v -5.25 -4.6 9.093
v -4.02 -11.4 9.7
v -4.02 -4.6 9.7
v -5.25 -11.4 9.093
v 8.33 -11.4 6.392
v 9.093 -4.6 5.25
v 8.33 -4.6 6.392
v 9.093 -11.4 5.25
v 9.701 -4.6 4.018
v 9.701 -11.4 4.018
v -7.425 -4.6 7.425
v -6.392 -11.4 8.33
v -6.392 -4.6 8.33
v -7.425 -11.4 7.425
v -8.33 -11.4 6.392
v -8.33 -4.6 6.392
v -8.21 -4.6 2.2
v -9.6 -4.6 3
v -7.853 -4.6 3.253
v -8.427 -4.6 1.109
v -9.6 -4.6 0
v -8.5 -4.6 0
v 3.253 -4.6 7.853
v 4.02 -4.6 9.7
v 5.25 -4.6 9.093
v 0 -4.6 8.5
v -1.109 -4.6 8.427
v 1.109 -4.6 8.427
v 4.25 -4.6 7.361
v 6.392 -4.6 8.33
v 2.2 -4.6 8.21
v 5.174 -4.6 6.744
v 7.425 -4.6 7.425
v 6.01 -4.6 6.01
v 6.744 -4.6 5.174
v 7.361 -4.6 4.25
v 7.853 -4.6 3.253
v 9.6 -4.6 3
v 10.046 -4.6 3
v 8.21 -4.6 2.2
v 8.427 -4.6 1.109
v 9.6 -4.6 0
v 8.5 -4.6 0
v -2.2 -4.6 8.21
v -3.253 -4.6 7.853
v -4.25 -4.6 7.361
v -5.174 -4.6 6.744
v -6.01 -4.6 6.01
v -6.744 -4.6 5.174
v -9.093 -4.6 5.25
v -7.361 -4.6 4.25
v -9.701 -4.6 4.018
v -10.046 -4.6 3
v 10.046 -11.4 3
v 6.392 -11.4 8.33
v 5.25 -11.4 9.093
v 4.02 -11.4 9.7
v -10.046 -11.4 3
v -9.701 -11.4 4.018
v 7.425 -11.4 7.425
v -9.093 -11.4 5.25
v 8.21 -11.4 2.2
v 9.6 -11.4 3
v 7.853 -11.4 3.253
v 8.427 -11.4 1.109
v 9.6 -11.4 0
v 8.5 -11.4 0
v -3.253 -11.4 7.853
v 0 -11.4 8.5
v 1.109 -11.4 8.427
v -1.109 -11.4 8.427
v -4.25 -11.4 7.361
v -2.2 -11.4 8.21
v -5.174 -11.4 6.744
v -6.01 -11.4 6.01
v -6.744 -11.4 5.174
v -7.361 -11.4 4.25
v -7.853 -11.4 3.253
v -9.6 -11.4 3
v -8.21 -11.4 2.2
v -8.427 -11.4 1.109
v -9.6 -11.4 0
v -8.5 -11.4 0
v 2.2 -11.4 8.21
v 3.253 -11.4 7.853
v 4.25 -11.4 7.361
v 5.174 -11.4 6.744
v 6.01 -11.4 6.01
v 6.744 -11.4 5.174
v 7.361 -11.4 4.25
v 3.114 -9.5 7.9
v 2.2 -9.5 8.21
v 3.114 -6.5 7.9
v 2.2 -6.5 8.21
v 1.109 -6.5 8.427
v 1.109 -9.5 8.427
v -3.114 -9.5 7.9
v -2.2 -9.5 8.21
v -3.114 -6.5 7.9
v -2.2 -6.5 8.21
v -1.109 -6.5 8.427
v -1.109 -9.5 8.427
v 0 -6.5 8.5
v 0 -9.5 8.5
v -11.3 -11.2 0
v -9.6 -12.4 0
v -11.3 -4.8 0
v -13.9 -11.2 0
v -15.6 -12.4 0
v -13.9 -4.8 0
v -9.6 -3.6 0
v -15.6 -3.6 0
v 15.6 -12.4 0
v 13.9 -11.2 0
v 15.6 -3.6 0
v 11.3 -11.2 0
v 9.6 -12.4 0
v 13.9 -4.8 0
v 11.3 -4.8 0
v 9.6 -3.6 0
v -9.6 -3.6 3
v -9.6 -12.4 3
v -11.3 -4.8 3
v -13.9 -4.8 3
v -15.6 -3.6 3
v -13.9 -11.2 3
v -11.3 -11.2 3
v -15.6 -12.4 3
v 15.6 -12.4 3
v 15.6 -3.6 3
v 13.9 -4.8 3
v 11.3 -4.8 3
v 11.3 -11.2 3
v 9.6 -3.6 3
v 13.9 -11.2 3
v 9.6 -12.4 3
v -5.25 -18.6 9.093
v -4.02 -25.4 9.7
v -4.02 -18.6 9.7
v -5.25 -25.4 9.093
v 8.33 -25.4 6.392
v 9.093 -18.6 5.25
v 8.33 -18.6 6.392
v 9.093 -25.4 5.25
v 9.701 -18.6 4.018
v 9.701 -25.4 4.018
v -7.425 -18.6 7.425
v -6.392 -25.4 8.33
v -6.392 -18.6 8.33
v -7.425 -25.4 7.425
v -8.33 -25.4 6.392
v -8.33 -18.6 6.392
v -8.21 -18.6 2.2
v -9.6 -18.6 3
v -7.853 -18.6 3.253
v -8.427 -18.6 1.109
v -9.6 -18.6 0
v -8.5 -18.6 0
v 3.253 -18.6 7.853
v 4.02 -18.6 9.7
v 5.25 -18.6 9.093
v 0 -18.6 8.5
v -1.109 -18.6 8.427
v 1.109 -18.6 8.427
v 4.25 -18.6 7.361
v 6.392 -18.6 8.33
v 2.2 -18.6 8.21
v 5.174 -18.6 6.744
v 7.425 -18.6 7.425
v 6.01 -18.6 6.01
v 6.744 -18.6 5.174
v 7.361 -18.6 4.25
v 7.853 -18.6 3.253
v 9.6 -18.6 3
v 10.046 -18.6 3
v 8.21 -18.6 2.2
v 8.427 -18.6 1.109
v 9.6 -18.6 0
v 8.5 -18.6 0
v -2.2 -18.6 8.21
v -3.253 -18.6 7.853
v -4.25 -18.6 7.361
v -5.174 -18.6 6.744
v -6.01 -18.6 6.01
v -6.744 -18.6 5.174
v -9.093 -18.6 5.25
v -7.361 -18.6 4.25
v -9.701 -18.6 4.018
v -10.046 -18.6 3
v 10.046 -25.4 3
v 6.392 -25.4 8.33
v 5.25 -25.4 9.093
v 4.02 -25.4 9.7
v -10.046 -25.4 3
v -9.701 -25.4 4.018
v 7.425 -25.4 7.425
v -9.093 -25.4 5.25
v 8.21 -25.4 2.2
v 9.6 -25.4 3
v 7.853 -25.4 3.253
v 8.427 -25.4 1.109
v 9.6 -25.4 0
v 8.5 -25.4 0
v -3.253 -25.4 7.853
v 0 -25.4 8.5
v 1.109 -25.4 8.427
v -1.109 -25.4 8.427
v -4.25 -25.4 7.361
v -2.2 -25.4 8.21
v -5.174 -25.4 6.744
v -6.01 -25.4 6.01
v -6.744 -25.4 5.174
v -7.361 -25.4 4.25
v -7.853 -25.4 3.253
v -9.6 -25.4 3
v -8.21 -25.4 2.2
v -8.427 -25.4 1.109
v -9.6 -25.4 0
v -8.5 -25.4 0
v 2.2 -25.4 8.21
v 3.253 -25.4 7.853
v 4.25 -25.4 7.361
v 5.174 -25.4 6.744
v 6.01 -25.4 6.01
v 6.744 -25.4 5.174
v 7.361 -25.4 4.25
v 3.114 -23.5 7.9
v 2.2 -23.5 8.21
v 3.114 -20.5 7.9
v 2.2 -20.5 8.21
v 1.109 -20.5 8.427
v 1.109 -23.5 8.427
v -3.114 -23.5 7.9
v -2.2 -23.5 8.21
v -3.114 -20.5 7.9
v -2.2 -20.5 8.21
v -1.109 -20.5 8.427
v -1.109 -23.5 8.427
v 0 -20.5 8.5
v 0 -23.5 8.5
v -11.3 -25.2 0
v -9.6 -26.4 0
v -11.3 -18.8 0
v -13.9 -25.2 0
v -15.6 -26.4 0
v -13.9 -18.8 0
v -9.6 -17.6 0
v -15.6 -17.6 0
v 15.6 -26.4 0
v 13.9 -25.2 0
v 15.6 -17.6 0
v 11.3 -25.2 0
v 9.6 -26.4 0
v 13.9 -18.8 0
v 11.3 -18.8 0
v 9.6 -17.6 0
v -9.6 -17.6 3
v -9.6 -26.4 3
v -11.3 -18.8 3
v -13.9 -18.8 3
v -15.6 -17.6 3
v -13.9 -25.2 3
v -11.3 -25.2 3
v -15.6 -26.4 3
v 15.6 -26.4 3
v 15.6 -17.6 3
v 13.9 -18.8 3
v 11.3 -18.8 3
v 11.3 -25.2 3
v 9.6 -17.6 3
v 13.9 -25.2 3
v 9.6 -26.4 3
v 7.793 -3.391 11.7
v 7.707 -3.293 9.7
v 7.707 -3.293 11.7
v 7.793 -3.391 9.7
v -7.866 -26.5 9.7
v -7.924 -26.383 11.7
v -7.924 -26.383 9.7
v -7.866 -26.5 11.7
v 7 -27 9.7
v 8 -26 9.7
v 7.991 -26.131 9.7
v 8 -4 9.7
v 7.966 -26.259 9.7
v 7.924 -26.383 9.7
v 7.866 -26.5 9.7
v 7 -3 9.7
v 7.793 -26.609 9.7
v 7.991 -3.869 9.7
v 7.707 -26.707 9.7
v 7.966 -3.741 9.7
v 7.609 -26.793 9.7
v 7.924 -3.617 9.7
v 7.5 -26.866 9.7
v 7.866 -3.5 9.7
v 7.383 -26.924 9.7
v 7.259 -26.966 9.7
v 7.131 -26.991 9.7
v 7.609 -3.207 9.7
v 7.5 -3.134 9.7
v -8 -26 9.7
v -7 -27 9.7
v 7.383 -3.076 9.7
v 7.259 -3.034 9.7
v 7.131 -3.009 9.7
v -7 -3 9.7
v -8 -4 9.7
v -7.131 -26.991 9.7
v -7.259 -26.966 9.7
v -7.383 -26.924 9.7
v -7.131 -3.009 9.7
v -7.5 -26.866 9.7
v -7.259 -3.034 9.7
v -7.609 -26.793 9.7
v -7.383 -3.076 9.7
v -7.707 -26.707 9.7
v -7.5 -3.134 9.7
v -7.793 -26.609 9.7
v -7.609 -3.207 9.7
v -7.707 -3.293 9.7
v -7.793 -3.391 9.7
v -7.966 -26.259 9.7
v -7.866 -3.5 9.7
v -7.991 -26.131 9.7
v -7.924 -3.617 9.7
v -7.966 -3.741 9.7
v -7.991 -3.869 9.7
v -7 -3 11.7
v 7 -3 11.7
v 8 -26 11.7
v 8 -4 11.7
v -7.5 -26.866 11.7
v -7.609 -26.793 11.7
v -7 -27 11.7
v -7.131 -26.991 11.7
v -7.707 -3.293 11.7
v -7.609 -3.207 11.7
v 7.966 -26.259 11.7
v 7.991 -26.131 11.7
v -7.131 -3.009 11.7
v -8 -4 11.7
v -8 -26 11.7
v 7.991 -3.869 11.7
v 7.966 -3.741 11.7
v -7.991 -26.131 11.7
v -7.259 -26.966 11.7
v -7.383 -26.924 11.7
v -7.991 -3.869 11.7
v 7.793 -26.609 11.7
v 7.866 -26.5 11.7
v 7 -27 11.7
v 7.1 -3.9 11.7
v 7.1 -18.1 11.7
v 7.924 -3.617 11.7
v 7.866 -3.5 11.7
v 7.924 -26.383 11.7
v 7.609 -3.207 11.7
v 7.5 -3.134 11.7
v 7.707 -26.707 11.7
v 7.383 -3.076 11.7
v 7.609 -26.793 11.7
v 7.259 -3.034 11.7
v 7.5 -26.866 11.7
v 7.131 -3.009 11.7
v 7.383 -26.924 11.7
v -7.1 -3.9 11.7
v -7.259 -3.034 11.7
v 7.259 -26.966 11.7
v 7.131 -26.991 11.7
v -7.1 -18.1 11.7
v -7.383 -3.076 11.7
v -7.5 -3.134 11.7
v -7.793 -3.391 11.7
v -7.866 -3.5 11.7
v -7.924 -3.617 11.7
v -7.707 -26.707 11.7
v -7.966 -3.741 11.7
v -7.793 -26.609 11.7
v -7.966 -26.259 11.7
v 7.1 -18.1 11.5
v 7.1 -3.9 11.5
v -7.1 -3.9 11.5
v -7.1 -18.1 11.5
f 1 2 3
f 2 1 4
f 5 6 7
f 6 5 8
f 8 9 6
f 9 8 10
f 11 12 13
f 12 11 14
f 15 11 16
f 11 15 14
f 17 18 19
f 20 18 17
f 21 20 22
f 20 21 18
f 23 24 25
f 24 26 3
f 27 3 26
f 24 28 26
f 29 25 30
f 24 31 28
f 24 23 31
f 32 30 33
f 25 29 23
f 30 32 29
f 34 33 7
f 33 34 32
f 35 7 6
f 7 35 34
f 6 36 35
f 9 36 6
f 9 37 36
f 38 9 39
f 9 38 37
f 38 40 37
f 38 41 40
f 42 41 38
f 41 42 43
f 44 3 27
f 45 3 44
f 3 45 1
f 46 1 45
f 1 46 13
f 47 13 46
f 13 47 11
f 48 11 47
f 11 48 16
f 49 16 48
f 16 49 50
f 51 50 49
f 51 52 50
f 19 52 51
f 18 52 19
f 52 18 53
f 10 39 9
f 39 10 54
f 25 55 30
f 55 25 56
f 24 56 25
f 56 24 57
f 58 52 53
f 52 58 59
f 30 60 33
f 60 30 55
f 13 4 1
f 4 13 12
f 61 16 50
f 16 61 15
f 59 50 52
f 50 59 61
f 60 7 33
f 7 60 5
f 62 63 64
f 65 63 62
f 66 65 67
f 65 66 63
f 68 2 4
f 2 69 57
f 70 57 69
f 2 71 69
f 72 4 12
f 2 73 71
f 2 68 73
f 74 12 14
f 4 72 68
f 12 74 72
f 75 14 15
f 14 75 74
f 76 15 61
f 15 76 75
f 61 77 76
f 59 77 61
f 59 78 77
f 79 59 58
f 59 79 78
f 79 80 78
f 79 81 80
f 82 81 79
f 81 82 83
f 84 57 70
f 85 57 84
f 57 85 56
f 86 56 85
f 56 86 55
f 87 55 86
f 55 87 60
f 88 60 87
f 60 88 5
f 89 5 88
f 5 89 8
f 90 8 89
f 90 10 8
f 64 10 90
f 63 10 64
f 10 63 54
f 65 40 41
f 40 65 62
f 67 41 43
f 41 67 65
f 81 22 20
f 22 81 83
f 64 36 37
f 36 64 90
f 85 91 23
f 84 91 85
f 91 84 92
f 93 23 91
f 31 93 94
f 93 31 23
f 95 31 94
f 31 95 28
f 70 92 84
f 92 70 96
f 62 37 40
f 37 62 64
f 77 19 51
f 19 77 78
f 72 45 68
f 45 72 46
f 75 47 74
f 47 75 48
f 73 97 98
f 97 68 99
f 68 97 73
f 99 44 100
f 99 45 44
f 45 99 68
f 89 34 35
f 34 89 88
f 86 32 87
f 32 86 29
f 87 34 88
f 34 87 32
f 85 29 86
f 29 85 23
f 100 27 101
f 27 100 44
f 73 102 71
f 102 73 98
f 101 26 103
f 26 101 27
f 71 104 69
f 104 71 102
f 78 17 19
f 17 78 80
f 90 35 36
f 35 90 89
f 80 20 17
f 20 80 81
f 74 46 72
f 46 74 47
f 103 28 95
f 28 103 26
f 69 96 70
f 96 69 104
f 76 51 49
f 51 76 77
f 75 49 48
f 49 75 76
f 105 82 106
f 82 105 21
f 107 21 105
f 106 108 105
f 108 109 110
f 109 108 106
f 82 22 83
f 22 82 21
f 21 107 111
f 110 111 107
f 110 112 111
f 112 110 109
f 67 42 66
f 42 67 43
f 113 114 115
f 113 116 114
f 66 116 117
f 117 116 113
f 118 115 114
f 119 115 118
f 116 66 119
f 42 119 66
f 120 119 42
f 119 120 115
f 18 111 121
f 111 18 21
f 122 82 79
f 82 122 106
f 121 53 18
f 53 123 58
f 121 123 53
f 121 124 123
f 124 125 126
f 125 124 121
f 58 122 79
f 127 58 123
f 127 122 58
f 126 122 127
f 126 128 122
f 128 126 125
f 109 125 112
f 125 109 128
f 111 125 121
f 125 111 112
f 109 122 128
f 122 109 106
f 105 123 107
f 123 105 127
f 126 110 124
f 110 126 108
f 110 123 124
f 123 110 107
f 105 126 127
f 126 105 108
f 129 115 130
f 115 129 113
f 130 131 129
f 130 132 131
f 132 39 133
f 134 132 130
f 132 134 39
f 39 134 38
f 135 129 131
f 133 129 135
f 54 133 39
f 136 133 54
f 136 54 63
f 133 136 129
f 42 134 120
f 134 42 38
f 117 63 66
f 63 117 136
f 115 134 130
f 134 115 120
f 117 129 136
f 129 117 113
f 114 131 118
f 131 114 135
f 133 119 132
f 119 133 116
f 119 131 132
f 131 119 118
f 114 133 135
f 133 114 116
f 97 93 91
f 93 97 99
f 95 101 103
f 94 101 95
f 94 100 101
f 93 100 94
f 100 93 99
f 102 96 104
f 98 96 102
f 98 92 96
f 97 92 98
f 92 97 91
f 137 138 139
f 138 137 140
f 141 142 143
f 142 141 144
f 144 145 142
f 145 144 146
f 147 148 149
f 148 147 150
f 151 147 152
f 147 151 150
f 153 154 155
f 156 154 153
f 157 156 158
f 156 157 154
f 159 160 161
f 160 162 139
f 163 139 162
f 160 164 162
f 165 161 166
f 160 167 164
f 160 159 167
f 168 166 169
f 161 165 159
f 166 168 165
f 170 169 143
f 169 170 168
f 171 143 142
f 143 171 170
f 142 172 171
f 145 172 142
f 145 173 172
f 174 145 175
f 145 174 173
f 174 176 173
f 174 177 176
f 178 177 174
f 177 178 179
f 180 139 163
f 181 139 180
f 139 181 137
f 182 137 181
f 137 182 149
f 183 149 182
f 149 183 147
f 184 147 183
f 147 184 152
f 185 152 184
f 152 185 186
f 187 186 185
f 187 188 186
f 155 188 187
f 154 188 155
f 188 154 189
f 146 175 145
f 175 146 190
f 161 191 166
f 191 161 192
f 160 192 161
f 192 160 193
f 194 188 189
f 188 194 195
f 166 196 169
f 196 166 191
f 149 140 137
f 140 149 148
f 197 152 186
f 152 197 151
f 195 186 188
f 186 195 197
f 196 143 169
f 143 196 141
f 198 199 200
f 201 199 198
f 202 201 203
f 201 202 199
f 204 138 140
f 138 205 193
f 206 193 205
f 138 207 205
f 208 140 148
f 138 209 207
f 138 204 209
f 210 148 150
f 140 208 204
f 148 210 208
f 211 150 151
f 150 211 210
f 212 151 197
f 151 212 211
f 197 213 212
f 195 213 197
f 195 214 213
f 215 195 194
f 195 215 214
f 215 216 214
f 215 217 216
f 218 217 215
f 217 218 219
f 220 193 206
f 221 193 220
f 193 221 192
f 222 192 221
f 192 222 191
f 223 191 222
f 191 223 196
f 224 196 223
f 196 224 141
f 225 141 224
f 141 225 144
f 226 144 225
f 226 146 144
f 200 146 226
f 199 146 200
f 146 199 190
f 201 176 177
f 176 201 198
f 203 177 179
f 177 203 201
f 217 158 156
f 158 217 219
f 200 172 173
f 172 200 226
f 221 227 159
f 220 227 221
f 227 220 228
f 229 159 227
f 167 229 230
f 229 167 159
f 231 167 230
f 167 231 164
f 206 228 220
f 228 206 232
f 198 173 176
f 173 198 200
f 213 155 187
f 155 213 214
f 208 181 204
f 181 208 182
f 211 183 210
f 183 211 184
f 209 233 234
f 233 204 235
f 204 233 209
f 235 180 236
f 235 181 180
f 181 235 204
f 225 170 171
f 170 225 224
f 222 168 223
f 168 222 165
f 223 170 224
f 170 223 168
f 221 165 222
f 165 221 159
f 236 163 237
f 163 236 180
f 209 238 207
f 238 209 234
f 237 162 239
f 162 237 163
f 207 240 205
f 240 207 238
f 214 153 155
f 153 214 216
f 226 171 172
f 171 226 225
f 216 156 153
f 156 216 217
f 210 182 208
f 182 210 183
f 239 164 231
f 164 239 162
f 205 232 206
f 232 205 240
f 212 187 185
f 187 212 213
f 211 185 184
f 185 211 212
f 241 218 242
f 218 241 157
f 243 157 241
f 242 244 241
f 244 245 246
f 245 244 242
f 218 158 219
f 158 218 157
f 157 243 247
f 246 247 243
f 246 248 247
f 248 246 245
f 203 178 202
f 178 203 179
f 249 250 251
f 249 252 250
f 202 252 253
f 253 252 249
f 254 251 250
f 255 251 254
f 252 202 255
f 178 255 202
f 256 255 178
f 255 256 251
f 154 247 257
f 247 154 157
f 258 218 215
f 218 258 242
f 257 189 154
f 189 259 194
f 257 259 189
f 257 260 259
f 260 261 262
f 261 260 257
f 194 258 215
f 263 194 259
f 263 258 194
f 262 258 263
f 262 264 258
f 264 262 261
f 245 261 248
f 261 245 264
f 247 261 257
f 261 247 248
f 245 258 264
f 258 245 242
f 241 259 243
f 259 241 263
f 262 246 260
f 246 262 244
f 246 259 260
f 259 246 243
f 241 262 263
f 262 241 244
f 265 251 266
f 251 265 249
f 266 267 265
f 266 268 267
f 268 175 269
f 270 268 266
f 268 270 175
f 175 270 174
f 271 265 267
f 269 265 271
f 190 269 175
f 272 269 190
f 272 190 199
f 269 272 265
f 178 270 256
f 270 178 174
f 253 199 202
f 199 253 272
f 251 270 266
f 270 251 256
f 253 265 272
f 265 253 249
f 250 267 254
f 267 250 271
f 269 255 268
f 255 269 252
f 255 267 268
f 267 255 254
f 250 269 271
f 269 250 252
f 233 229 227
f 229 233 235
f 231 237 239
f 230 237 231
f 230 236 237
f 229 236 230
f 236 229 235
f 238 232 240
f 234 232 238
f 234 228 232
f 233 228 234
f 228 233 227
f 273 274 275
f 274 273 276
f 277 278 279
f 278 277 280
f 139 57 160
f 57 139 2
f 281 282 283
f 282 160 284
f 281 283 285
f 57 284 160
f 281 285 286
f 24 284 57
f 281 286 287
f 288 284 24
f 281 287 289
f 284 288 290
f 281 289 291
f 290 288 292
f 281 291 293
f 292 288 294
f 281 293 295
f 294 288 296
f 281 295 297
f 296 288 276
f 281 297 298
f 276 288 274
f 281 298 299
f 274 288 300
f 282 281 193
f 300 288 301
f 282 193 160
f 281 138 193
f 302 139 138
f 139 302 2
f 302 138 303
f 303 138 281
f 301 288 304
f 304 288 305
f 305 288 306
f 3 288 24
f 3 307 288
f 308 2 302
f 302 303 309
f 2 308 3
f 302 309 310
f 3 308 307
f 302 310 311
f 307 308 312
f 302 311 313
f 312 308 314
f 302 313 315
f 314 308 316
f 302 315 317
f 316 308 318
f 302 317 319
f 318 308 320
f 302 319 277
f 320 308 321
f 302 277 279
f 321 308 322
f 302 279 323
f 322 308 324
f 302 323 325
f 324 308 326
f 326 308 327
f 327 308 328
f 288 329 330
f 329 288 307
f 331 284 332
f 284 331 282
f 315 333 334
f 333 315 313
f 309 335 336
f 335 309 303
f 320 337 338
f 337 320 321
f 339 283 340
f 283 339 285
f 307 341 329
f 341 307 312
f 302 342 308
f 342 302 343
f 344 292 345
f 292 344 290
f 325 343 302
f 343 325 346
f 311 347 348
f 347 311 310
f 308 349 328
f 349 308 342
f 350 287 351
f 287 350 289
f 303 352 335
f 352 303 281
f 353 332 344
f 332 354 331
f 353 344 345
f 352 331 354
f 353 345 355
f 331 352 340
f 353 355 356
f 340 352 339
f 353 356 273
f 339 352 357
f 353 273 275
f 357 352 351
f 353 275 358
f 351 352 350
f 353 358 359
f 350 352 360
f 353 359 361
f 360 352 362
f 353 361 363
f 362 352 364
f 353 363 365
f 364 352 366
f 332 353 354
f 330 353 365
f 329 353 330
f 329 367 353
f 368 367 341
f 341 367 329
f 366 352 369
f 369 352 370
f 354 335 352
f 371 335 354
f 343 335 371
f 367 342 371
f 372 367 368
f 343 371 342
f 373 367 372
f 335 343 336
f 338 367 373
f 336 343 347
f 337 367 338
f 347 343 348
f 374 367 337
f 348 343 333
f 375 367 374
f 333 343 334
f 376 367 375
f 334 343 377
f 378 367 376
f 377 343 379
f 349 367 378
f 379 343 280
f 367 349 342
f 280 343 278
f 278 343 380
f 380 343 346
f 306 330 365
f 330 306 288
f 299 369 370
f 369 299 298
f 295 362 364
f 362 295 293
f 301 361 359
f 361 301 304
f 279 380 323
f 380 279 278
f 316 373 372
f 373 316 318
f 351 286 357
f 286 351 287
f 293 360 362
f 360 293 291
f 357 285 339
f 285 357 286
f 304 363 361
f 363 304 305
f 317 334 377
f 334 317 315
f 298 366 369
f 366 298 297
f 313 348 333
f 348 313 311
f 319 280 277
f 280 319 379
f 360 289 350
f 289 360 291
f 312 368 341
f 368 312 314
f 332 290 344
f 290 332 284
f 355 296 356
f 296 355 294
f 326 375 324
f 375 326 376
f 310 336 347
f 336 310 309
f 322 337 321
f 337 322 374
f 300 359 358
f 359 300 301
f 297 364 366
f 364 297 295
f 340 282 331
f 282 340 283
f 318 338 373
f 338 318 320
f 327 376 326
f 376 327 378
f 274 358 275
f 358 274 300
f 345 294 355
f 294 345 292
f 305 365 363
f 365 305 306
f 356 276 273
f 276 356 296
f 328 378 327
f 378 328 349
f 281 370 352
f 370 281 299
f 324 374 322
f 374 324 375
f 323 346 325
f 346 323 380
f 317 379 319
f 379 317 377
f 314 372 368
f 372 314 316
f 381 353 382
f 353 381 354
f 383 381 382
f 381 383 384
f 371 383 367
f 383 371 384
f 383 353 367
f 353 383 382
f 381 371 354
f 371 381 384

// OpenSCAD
// ReachSense six-finger wrap v2. Units: mm. Experimental, physically unverified.
// R: +X lateral, +Y distal (towards fingertip), +Z dorsal.
// A REMOVABLE seating gauge defines Y=0. The wearable deck ends at Y=-3.
// Remove the gauge before testing; no permanent wall blocks the fingertip.
// This defines nominal longitudinal registration, NOT an anatomical 3D point.
$fn = 48;
part = "holder"; // "holder", "gauge" or "strap"
marker_id = 32;
finger_diameter_mm = 17;
marker_edge_mm = 10;
quiet_zone_mm = 2;
frame_mm = 1;
wall_mm = 2;
stop_wall_mm = 1.2;
strap_width_mm = 6;
strap_length_mm = 90;
gauge_side_clearance_mm = 0.3;
r = finger_diameter_mm/2;
tile = marker_edge_mm + 2*quiet_zone_mm;
deck_width = tile + 2*frame_mm;
length = tile + 2*frame_mm + 8;
deck_front_y = -3;
deck_back_y = deck_front_y-length;
deck_bottom = r + wall_mm - 0.8;
deck_top = deck_bottom + 2;
pocket_depth = 0.2;
marker_y = deck_front_y-(frame_mm+quiet_zone_mm+marker_edge_mm/2);
support_y = [deck_front_y-5,deck_back_y+5];
nail_seat_width = min(8,finger_diameter_mm/2);
nail_seat_z = r-0.6;
assert(finger_diameter_mm >= 12 && finger_diameter_mm <= 26,"Choose a 12–26 mm candidate opening");
assert(marker_edge_mm >= 8 && marker_edge_mm <= 16,"Choose an 8–16 mm black edge");
assert(quiet_zone_mm >= 2,"Keep the full white quiet zone");
assert(marker_id >= 0 && marker_id < 100,"DICT_4X4_100 ID required");
module support(y) {
    translate([0,y,0]) intersection() {
        difference() {
            rotate([90,0,0]) cylinder(r=r+wall_mm,h=6.8,center=true);
            rotate([90,0,0]) cylinder(r=r,h=8.8,center=true);
        }
        translate([-r-wall_mm-1,-4.4,0]) cube([2*(r+wall_mm+1),8.8,r+wall_mm+1]);
    }
    // Flat dorsal bearing at each strap region closes the gap below the deck.
    // Contact with a real nail/dorsal surface and rotational retention are unverified.
    translate([-nail_seat_width/2,y-1.5,nail_seat_z])
        cube([nail_seat_width,3,deck_bottom-nail_seat_z+0.2]);
    for(sign=[-1,1]) translate([sign*(r+wall_mm+2.1),y,1.5]) difference() {
        cube([6,8.8,3],center=true);
        cube([2.6,6.4,5],center=true);
    }
}
module deck() {
    // Rounded corners retain a straight central gauge abutment at Y=-3.
    hull() for(x=[-deck_width/2+1,deck_width/2-1])
        for(y=[deck_back_y+1,deck_front_y-1])
            translate([x,y,deck_bottom]) cylinder(r=1,h=2);
}
module holder() {
    difference() {
        union() { for(y=support_y) support(y); deck(); }
        translate([-tile/2-0.1,marker_y-tile/2-0.1,deck_top-pocket_depth])
            cube([tile+0.2,tile+0.2,pocket_depth+1]);
    }
}
module gauge() {
    // Hand-held drop-on gauge, NOT a validated snap fit. Hold its proximal
    // abutment against the deck's front face at Y=-3 while gently seating the finger.
    // Feet sit on the bare side frame; the ArUco pocket remains clear.
    union() {
        translate([-deck_width/2-2.3,deck_front_y,deck_top])
            cube([deck_width+4.6,-deck_front_y+stop_wall_mm,1.2]);
        // Deck contact Y=-3; fingertip contact Y=0. Remove upwards after tightening.
        translate([-deck_width/2+1,deck_front_y,deck_bottom])
            cube([deck_width-2,-deck_front_y,deck_top-deck_bottom+0.5]);
        translate([-deck_width/2,0,-r/2])
            cube([deck_width,stop_wall_mm,deck_top+1.2+r/2]);
        for(sign=[-1,1]) {
            x=sign>0 ? deck_width/2+gauge_side_clearance_mm : -deck_width/2-gauge_side_clearance_mm-2;
            translate([x,-10,deck_bottom]) cube([2,10,deck_top-deck_bottom+1.2]);
            foot_x=sign>0 ? deck_width/2-0.8 : -deck_width/2-2.3;
            translate([foot_x,-10,deck_top]) cube([3.1,10,1.2]);
        }
    }
}
module strap() {
    // TPU-only ladder strip. Ends require a return loop/fastener or hook-and-loop.
    union() {
        translate([-strap_length_mm/2,-strap_width_mm/2,0]) cube([strap_length_mm,strap_width_mm,0.8]);
        for(x=[-strap_length_mm/2+3:4:strap_length_mm/2-3])
            translate([x-0.7,-strap_width_mm/2,0.8]) cube([1.4,strap_width_mm,0.5]);
    }
}
if(part=="strap") strap(); else if(part=="gauge") gauge(); else holder();
echo(reference_plane_y_mm=0,deck_front_y_mm=deck_front_y);
echo(marker_center_R_mm=[0,marker_y,deck_top-pocket_depth+0.15]);
echo(marker_center_to_reference_plane_mm=-marker_y);
